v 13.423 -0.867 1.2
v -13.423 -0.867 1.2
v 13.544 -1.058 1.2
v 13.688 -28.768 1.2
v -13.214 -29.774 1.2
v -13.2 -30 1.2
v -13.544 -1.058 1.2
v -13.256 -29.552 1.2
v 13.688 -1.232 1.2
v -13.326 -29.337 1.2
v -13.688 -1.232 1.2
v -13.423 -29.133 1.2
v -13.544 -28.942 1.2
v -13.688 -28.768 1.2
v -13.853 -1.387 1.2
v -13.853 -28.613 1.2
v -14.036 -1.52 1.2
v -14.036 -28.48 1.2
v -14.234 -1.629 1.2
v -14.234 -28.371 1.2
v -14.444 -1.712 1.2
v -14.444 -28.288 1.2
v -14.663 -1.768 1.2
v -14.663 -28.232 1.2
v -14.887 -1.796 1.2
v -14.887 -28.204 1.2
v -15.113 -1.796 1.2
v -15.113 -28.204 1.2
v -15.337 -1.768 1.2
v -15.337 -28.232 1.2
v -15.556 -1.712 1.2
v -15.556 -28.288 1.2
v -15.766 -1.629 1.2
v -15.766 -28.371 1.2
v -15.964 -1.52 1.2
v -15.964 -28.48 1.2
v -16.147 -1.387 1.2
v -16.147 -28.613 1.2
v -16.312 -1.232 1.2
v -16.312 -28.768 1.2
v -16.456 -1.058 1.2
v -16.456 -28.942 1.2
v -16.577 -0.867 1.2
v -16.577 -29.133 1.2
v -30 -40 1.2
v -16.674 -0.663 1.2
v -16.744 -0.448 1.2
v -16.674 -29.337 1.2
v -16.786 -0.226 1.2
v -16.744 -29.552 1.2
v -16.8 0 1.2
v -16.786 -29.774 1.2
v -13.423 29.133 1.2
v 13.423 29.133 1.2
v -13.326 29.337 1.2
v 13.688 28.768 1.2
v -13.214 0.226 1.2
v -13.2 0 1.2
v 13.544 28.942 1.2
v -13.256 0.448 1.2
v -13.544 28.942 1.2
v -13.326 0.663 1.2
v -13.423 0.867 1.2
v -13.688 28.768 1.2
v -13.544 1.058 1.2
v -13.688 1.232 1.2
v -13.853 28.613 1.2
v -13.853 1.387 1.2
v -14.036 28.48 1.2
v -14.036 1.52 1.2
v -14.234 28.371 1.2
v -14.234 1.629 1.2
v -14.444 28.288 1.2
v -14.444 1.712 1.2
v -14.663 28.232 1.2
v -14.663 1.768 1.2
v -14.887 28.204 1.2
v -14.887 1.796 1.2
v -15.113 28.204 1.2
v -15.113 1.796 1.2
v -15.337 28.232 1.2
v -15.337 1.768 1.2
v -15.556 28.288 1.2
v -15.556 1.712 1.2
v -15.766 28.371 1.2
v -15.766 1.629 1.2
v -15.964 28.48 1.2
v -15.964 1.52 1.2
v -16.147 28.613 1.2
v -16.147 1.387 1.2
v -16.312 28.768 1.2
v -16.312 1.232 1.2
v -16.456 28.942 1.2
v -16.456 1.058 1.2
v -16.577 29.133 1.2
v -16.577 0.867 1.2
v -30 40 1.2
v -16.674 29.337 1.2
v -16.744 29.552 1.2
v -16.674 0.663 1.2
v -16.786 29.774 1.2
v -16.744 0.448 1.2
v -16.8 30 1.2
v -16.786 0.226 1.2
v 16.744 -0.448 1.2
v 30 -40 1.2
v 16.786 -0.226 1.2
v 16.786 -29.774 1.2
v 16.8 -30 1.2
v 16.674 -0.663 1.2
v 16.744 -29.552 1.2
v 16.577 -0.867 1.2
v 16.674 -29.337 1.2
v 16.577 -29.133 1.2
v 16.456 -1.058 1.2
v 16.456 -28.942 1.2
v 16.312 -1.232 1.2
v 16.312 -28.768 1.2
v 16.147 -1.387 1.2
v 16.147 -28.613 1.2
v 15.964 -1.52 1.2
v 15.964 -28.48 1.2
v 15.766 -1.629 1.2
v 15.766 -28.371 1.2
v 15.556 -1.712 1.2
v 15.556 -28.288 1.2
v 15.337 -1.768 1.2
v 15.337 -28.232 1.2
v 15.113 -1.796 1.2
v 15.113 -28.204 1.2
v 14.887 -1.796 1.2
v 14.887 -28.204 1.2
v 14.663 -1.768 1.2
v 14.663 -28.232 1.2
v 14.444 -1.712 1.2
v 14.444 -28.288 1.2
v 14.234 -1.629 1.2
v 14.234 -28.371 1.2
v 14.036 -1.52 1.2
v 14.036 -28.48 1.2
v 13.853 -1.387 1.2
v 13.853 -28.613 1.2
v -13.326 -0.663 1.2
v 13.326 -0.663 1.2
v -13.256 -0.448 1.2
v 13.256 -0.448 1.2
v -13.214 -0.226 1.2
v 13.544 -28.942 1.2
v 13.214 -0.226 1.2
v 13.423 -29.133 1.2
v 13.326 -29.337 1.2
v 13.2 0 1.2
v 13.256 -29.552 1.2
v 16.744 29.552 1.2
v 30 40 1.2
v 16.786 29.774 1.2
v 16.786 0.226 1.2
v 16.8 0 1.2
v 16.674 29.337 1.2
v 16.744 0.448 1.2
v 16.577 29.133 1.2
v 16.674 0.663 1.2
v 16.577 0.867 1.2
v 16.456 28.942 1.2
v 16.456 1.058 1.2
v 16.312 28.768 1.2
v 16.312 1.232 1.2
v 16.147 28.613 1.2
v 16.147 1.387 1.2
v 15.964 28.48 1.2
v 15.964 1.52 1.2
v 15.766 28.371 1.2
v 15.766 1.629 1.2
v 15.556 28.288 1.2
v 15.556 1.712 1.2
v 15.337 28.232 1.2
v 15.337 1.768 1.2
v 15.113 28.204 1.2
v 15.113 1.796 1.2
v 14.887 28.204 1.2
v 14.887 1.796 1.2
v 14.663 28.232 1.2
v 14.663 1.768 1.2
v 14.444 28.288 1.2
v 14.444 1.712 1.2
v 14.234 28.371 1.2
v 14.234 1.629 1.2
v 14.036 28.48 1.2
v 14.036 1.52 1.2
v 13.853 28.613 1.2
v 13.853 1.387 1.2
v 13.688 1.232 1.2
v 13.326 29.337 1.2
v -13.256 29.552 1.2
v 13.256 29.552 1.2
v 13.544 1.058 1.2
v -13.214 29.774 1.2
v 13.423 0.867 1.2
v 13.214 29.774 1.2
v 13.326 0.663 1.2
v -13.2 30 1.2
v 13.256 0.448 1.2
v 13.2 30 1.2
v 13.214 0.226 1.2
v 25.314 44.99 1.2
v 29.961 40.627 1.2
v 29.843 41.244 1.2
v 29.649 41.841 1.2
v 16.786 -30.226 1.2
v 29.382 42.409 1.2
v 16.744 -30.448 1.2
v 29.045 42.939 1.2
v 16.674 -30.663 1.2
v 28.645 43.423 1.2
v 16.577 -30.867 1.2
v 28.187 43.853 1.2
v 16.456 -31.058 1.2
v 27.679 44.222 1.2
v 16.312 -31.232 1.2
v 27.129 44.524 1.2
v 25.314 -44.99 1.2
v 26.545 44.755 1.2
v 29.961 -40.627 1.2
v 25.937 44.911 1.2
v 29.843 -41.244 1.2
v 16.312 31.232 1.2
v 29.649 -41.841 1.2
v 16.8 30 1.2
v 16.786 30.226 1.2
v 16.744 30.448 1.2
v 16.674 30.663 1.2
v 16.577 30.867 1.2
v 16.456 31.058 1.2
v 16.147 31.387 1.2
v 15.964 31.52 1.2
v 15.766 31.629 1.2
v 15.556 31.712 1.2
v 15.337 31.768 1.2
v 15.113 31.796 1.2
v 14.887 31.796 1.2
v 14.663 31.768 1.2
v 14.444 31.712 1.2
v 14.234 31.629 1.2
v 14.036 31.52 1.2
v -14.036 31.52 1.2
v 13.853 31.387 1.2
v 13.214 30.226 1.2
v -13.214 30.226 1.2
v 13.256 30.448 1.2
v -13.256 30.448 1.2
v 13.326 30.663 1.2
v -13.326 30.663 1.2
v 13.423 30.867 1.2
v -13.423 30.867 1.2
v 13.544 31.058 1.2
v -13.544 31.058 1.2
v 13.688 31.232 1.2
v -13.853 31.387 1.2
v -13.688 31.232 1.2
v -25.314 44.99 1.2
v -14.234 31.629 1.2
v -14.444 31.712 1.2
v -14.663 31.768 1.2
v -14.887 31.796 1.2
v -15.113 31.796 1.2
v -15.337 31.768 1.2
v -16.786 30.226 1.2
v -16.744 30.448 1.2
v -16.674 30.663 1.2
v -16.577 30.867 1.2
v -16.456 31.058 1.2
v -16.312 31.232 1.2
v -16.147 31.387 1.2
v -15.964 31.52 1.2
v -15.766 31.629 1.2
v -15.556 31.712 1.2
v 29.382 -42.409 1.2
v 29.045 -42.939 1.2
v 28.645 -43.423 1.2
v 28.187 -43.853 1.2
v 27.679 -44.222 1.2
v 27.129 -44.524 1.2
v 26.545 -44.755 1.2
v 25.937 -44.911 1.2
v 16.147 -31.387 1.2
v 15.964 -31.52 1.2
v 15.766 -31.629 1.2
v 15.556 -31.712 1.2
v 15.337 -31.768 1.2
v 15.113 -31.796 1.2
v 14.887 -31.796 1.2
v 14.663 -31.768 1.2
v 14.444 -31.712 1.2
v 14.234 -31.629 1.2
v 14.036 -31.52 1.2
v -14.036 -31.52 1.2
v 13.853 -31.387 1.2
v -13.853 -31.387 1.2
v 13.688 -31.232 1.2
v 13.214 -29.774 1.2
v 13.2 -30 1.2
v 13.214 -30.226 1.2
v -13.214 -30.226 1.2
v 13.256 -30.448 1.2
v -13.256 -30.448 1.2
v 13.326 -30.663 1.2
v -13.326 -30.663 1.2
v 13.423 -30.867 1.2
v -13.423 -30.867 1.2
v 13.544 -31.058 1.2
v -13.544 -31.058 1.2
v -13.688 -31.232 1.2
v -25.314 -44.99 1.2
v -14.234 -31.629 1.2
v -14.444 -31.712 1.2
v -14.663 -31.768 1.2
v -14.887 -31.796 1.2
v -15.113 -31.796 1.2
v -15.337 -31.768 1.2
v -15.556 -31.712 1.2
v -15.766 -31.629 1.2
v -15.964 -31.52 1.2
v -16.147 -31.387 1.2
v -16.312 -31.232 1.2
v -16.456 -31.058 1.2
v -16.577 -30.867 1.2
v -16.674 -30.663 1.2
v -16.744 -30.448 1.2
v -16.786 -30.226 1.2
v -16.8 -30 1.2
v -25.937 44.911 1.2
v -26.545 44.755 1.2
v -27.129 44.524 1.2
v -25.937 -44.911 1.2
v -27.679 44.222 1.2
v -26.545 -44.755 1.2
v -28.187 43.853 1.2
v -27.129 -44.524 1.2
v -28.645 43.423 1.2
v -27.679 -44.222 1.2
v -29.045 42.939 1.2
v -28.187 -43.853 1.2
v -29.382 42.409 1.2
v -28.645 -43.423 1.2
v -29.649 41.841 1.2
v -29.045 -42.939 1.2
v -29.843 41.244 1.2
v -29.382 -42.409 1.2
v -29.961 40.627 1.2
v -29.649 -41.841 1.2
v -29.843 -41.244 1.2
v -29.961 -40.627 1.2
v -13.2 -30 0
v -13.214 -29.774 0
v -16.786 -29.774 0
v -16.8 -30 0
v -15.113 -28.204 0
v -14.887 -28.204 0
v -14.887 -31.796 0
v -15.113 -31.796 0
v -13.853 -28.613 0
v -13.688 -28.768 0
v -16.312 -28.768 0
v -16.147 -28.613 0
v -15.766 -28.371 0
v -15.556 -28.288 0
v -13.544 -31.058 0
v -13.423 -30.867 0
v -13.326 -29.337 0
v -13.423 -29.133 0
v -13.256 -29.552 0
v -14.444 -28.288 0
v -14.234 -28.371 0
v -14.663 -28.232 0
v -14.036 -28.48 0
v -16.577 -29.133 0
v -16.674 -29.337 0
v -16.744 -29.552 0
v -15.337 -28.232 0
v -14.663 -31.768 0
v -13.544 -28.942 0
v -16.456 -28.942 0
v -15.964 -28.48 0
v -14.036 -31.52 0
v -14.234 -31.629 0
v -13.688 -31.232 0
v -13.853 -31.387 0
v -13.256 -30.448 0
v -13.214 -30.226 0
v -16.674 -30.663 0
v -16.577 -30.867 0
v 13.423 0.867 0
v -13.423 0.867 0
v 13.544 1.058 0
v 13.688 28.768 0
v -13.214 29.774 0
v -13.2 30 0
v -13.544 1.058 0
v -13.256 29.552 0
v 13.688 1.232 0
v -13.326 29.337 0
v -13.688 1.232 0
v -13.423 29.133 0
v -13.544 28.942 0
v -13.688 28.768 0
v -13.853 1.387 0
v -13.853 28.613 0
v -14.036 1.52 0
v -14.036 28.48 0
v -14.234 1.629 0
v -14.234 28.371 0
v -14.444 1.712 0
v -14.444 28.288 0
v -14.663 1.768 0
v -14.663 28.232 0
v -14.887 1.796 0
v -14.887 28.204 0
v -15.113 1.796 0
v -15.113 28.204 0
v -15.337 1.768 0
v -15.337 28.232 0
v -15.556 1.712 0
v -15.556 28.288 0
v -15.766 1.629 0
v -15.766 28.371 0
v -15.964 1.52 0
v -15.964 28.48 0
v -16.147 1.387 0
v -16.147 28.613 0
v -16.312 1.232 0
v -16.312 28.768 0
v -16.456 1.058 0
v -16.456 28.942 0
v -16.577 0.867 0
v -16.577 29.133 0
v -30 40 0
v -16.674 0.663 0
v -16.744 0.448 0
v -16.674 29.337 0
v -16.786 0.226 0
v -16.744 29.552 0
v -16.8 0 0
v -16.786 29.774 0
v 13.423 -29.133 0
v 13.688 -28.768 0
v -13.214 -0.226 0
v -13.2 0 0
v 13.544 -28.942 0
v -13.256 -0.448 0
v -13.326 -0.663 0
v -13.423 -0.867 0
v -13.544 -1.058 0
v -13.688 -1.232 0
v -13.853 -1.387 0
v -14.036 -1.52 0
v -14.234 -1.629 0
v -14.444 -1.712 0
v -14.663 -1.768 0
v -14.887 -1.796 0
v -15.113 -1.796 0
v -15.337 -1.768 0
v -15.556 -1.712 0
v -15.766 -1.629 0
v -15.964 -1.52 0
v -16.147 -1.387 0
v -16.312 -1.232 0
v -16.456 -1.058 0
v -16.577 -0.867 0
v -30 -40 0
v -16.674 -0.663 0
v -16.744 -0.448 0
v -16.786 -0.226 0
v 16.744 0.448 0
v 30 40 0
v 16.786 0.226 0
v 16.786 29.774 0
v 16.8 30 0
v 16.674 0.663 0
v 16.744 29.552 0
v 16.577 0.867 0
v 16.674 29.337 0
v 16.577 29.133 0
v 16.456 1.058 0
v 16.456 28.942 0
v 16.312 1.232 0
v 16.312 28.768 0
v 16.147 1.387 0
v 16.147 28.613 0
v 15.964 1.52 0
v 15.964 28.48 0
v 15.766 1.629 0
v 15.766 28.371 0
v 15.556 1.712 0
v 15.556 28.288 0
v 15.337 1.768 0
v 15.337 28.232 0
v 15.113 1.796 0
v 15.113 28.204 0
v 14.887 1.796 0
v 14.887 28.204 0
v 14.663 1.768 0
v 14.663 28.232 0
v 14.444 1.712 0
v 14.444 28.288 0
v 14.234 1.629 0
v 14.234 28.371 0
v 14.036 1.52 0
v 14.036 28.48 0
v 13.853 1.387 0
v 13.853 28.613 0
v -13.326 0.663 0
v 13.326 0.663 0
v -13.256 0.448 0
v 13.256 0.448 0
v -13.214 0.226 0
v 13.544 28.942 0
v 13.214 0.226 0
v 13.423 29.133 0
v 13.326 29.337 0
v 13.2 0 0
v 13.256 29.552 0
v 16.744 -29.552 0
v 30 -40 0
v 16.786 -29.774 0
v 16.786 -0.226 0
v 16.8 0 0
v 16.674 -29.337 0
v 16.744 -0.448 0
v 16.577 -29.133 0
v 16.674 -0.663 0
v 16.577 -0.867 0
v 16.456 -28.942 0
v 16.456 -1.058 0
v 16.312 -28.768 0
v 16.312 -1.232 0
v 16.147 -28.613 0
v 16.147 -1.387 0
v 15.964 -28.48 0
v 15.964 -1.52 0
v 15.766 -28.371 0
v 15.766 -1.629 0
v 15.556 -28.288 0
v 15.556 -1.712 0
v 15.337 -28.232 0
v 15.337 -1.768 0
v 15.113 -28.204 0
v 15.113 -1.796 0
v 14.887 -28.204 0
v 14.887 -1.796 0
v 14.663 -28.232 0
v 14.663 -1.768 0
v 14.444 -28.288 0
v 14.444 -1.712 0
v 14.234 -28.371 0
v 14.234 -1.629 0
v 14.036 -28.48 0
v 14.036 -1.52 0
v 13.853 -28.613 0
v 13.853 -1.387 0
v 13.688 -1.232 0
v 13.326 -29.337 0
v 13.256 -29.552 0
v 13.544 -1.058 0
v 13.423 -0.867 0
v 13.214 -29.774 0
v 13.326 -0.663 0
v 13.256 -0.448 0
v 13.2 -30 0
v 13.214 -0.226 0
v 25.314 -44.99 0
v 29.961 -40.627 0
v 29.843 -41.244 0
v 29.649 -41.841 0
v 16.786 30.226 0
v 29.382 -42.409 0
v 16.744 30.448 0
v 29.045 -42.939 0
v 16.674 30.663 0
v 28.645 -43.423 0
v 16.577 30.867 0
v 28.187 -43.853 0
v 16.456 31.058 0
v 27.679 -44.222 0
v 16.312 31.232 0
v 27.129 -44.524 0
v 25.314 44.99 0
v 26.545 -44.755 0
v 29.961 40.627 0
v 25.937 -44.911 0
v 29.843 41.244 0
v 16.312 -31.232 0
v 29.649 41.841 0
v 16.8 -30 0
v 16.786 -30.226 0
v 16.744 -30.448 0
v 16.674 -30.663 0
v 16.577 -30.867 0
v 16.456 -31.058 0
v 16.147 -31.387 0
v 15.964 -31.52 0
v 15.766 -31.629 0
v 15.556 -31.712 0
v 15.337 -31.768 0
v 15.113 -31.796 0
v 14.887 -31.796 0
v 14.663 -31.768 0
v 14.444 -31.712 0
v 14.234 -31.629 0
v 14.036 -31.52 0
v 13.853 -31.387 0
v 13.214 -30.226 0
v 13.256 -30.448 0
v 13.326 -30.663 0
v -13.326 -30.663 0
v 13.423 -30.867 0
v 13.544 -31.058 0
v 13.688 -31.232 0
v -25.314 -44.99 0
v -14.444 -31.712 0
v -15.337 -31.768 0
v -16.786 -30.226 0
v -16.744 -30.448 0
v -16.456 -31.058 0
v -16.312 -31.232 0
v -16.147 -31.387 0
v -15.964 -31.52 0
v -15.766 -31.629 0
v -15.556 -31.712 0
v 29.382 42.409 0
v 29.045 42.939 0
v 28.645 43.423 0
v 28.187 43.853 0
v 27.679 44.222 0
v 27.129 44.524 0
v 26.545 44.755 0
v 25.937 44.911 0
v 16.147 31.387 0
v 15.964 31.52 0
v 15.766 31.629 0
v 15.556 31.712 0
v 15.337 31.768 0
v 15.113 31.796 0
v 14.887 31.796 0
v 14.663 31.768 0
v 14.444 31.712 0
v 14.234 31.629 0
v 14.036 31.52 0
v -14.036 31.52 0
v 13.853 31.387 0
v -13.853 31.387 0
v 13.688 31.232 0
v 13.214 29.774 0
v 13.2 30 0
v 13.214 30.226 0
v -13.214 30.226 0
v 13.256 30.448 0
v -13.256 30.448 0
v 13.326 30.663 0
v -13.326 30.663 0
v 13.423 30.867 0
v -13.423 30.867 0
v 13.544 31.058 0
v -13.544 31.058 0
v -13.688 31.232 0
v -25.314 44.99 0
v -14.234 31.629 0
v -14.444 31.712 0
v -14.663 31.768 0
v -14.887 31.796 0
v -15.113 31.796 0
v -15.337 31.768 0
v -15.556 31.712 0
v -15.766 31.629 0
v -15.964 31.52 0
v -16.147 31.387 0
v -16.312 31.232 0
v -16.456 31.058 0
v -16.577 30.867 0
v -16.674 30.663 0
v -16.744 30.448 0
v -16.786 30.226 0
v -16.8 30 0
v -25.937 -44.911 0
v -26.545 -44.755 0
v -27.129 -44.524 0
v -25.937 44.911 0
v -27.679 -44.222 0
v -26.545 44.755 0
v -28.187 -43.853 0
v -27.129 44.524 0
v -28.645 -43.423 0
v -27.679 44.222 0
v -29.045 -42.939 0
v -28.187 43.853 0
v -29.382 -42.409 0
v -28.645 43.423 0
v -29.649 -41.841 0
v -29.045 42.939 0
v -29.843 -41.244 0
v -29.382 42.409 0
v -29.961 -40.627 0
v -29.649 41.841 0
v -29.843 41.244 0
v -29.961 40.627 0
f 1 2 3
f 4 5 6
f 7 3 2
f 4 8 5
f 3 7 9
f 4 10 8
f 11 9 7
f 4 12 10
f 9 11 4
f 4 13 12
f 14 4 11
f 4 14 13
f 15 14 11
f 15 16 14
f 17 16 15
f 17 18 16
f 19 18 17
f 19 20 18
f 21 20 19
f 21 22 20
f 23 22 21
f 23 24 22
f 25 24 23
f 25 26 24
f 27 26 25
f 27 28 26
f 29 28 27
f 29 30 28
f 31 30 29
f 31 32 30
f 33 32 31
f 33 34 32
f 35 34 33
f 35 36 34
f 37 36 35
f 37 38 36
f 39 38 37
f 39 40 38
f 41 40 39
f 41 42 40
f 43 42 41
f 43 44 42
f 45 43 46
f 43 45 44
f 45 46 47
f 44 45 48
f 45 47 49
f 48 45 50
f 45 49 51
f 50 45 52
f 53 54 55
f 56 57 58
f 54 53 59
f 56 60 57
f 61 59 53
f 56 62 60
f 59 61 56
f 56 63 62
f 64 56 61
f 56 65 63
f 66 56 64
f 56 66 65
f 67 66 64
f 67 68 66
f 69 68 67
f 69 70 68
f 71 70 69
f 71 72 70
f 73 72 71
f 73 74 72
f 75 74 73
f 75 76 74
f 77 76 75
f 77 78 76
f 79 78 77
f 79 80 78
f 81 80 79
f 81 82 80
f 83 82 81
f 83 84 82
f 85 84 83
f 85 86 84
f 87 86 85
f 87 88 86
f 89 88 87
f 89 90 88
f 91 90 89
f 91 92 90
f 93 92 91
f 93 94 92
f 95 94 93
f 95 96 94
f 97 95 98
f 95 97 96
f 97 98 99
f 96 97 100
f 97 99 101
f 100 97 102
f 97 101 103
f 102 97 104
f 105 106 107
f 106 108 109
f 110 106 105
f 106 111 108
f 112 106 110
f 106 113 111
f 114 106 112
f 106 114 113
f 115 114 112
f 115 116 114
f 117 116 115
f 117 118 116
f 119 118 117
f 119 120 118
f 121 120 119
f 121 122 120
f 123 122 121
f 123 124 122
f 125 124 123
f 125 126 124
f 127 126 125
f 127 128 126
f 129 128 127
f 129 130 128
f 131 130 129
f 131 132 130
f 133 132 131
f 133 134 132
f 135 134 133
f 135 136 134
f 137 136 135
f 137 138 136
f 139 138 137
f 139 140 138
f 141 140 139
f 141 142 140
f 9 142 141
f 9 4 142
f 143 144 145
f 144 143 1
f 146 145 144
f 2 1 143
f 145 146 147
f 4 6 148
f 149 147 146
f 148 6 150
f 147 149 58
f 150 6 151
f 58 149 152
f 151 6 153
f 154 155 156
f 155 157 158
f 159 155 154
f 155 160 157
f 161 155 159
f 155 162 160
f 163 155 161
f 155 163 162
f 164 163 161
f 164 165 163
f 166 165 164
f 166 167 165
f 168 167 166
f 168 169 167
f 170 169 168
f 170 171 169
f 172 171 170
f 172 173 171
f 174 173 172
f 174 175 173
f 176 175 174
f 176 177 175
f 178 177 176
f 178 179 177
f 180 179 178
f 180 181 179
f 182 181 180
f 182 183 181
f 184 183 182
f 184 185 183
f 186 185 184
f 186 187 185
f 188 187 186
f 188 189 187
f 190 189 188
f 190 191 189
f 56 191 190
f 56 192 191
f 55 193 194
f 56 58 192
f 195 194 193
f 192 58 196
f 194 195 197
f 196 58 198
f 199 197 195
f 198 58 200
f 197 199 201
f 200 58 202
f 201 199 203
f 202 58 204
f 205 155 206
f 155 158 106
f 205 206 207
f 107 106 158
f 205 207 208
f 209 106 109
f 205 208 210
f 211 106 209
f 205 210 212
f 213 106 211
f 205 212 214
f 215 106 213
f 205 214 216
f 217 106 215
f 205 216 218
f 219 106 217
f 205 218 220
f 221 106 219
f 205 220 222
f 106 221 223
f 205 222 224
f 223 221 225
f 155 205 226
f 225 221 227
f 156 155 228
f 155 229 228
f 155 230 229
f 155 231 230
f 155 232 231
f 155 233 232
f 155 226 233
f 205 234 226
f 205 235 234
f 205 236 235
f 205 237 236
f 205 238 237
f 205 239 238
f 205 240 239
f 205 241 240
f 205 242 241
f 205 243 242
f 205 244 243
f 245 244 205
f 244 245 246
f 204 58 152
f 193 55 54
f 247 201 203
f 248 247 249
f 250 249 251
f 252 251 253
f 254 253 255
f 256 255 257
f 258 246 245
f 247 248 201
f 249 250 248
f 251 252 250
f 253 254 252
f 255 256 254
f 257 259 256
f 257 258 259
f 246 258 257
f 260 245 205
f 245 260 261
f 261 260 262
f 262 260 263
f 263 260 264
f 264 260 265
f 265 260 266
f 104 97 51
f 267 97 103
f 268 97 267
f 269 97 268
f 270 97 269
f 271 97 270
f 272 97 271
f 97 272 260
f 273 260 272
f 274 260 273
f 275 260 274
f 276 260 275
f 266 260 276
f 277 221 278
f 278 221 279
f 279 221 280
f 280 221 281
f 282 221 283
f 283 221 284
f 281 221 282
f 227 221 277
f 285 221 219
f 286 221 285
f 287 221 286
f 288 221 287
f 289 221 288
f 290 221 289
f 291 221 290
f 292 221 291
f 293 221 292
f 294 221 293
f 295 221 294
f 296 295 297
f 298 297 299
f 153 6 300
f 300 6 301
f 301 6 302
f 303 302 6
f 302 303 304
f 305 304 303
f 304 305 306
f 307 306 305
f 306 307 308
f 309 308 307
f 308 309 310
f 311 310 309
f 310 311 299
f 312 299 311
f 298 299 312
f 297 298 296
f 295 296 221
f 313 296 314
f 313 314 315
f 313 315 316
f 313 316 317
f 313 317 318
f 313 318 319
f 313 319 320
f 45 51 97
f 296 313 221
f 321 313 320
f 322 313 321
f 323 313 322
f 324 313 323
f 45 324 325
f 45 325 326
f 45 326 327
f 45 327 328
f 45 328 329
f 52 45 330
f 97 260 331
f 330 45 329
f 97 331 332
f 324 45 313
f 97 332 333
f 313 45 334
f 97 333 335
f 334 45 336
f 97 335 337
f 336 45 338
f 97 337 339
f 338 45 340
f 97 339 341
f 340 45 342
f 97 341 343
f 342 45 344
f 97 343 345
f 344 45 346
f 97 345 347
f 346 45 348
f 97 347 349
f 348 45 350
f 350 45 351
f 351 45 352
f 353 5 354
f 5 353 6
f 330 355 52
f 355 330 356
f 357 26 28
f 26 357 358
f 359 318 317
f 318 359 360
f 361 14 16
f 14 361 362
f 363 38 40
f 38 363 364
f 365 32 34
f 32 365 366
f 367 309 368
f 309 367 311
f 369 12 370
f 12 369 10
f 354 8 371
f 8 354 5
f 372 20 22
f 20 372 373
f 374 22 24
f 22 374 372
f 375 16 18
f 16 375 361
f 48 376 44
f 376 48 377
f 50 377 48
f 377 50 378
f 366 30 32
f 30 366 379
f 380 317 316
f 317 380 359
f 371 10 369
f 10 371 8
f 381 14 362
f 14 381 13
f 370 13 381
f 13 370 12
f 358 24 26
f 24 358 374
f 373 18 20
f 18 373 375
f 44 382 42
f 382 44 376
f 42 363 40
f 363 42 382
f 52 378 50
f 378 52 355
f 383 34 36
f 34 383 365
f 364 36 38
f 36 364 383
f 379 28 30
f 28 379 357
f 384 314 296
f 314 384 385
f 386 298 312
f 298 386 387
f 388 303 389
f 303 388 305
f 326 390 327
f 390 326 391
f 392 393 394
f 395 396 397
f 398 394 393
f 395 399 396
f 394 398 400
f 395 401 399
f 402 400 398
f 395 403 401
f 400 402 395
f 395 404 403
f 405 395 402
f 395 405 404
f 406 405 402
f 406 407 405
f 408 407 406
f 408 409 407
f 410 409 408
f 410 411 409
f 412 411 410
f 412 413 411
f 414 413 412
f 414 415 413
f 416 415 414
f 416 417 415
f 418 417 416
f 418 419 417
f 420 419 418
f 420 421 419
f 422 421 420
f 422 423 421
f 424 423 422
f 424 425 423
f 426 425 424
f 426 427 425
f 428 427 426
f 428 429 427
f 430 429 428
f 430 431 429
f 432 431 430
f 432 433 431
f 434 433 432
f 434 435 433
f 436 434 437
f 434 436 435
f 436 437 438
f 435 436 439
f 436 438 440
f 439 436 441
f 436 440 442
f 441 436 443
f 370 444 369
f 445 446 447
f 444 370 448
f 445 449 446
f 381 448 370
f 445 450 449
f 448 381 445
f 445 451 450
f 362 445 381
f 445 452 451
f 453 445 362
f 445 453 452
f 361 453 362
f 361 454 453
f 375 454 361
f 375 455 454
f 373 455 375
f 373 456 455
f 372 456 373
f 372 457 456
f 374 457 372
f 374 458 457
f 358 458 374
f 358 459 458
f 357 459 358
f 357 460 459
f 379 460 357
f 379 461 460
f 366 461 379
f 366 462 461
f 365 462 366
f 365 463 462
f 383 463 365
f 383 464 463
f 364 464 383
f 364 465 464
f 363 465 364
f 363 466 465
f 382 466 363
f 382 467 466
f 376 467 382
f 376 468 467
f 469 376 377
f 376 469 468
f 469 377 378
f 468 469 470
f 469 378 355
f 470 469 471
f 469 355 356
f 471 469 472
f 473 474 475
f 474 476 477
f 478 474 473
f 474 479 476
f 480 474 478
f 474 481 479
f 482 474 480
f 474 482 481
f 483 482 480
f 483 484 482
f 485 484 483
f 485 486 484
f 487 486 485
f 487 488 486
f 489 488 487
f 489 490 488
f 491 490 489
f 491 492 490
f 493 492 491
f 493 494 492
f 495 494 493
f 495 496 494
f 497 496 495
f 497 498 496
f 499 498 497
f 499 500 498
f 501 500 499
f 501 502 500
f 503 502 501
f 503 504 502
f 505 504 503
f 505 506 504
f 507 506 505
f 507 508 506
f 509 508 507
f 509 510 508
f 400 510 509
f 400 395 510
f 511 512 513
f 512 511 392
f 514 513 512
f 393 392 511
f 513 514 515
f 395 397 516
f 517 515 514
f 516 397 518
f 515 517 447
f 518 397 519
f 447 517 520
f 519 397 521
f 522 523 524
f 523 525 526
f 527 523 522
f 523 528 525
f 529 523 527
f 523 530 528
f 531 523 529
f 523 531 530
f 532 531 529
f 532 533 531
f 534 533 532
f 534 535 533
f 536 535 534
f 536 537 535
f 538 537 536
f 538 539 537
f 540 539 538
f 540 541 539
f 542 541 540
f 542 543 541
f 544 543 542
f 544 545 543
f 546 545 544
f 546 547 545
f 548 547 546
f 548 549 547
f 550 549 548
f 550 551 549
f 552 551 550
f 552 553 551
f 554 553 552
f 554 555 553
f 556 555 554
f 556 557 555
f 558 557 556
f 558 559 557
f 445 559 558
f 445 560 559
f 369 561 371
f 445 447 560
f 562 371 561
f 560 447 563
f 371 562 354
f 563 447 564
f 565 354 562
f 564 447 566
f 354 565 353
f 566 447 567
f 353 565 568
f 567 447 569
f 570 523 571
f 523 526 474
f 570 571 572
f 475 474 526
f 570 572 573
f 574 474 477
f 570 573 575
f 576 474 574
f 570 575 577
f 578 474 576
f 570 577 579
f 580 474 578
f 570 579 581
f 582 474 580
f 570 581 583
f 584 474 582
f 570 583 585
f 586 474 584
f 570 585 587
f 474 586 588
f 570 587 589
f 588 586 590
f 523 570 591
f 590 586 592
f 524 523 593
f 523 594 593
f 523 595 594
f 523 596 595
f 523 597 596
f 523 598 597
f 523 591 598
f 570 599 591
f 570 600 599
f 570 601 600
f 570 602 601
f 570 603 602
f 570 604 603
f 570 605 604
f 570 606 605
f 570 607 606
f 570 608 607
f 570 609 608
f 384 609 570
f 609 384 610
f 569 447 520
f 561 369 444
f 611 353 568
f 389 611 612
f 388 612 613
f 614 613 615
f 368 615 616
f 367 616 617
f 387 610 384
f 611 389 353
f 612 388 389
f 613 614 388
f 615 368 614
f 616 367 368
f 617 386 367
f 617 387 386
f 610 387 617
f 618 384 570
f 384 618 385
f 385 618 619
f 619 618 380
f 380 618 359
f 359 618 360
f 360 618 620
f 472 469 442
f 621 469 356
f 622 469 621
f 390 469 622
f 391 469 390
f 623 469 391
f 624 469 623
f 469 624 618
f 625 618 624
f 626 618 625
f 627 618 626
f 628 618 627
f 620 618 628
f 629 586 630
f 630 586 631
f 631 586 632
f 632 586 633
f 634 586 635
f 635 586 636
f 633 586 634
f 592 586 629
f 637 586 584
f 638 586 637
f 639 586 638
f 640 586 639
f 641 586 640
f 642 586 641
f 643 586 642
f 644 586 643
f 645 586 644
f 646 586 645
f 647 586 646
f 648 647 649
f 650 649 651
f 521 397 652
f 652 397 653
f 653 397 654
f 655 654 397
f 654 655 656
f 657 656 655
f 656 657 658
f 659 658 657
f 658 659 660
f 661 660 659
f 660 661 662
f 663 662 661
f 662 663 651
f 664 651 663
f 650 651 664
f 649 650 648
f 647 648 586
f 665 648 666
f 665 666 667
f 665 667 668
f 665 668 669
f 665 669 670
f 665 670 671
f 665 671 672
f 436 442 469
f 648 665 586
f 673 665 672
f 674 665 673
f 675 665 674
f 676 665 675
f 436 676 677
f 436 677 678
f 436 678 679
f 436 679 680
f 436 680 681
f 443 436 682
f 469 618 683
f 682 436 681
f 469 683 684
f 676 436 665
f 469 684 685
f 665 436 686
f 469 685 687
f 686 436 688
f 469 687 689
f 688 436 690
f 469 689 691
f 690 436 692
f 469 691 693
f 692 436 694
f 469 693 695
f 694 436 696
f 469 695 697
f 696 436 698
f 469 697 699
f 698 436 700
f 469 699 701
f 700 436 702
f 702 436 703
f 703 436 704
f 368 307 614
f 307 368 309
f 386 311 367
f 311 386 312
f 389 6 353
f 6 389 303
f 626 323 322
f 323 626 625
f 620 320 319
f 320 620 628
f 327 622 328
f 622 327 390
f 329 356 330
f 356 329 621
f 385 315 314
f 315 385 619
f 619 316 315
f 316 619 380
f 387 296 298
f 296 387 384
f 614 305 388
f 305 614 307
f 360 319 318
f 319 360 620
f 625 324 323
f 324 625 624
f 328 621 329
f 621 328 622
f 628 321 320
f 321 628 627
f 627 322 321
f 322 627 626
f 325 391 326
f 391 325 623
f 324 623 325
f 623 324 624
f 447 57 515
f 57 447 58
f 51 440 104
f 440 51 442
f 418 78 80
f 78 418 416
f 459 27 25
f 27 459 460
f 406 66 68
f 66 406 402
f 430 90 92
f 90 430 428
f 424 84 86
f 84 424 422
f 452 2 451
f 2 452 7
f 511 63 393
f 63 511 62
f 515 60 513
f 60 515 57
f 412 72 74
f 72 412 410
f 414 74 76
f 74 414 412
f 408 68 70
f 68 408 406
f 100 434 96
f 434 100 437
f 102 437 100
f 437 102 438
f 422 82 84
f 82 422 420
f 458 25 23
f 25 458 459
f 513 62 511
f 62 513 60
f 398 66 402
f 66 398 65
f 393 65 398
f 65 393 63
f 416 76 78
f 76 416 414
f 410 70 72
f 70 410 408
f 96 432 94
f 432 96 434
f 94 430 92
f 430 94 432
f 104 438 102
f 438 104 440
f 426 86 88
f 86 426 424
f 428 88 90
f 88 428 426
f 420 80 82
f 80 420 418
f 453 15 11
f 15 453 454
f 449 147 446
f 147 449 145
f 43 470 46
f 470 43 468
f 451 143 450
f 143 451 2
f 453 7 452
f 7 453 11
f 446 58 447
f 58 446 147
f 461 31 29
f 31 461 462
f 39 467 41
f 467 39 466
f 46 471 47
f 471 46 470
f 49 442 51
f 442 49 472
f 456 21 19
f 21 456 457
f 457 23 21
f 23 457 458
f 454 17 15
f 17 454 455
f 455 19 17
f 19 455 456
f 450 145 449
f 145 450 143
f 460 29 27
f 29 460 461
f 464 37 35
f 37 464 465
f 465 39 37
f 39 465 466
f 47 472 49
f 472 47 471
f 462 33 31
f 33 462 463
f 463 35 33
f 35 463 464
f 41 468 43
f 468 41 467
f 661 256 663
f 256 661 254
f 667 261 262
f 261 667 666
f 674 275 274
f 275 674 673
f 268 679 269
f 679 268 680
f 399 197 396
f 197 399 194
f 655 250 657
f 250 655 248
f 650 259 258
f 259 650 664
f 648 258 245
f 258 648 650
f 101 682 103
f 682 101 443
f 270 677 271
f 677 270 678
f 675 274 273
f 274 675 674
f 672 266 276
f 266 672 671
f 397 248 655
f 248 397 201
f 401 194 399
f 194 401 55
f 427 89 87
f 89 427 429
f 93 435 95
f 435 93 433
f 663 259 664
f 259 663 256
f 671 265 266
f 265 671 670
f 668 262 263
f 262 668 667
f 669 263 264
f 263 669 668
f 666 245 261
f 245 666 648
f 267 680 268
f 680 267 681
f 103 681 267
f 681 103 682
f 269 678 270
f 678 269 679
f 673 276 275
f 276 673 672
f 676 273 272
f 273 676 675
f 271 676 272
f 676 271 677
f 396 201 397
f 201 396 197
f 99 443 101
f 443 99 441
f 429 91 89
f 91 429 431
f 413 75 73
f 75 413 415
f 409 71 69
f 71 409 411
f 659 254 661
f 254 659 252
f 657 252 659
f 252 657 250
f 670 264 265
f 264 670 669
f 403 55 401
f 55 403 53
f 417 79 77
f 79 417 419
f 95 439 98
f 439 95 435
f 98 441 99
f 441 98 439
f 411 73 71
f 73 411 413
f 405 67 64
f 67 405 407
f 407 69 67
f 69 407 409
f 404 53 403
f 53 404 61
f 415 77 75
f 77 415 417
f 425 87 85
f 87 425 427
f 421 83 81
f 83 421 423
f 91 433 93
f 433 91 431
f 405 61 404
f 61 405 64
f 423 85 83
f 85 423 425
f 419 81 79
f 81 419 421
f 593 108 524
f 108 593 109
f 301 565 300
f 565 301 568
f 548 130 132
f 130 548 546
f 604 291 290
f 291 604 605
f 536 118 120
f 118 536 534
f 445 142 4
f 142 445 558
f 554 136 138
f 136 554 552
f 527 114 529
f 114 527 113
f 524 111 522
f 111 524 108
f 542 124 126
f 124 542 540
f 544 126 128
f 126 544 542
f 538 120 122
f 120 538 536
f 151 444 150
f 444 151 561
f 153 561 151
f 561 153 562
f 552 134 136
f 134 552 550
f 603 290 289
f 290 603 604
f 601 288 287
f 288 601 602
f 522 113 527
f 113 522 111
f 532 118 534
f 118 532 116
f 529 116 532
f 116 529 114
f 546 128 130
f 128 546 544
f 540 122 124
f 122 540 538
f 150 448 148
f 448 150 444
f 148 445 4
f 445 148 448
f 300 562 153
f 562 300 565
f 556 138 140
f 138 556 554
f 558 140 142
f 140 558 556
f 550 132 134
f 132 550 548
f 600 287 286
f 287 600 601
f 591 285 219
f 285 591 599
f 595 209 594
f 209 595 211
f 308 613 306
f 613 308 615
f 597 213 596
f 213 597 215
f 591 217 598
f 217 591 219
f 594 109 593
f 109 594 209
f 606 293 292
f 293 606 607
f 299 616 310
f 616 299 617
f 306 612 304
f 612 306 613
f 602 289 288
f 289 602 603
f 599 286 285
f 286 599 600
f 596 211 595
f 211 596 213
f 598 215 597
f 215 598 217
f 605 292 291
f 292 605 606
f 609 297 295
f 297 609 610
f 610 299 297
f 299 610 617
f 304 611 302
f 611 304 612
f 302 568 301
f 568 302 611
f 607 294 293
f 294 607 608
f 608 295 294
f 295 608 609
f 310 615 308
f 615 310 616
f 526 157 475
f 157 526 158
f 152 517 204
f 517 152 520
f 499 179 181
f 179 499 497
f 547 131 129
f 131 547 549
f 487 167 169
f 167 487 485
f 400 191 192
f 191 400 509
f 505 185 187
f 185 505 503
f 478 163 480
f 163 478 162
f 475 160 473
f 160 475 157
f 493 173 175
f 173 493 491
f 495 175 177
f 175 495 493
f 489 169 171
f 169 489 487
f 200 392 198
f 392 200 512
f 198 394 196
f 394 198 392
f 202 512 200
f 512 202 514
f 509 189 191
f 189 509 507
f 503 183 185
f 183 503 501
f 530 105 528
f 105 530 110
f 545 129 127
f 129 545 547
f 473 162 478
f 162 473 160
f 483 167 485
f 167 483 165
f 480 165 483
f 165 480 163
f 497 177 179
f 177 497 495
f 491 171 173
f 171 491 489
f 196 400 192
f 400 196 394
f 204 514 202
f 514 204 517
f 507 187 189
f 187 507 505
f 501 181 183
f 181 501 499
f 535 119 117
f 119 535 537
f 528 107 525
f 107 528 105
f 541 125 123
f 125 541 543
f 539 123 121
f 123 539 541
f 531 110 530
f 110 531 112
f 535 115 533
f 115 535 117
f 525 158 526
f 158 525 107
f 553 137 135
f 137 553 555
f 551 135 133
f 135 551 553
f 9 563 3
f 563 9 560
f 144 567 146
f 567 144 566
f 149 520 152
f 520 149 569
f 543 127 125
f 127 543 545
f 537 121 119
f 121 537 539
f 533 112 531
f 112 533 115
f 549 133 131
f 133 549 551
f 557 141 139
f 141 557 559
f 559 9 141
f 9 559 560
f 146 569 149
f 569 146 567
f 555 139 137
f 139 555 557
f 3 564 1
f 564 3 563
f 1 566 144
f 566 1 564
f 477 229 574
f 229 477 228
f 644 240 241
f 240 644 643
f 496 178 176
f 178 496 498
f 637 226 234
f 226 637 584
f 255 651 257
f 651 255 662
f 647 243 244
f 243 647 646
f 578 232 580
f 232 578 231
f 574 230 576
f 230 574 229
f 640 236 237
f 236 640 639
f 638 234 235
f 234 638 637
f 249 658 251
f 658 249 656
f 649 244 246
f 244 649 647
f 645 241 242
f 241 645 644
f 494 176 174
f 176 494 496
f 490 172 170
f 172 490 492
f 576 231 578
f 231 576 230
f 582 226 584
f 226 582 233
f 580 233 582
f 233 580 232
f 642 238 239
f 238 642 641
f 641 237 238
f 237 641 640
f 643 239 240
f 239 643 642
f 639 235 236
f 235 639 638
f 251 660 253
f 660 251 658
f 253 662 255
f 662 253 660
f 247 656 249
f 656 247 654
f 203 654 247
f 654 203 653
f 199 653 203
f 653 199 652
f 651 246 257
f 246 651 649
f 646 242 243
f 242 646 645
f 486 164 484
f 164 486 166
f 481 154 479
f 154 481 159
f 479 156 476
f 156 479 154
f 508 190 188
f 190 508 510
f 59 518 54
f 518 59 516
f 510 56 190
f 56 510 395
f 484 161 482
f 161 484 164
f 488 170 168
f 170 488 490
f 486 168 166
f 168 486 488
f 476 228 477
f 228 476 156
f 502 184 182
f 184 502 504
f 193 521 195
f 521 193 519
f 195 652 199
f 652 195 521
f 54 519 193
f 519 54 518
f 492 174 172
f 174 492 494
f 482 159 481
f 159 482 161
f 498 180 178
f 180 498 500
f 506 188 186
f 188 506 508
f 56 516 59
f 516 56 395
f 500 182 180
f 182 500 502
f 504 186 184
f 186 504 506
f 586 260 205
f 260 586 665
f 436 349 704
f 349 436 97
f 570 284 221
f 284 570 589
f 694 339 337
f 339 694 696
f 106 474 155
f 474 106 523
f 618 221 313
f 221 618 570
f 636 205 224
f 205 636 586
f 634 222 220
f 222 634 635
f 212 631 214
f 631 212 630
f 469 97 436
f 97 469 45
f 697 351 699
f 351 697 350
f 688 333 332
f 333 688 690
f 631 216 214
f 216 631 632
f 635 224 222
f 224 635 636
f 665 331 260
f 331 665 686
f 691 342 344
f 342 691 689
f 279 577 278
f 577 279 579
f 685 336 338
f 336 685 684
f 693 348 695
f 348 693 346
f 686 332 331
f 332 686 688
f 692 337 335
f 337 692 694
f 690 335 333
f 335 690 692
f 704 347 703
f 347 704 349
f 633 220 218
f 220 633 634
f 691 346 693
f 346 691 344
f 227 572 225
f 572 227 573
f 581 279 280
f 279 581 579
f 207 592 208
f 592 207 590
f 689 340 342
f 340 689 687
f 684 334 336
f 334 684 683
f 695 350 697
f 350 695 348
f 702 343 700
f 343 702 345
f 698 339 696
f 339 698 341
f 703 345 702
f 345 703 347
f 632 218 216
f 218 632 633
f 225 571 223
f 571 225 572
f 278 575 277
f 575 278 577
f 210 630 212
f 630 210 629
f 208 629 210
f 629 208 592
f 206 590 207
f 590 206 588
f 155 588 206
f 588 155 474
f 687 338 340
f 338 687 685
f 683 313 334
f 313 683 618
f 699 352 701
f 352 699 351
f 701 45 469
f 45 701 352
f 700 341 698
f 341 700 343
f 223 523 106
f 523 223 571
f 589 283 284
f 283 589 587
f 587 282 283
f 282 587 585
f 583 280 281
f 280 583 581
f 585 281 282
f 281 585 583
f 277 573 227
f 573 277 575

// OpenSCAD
$fn = 50;


difference() {
	union() {
		hull() {
			translate(v = [-25.0000000000, 40.0000000000, 0]) {
				cylinder(h = 24, r = 5);
			}
			translate(v = [25.0000000000, 40.0000000000, 0]) {
				cylinder(h = 24, r = 5);
			}
			translate(v = [-25.0000000000, -40.0000000000, 0]) {
				cylinder(h = 24, r = 5);
			}
			translate(v = [25.0000000000, -40.0000000000, 0]) {
				cylinder(h = 24, r = 5);
			}
		}
	}
	union() {
		translate(v = [0, 0, 1.2000000000]) {
			hull() {
				translate(v = [-25.0000000000, 40.0000000000, 0]) {
					cylinder(h = 22.8000000000, r = 3.8000000000);
				}
				translate(v = [25.0000000000, 40.0000000000, 0]) {
					cylinder(h = 22.8000000000, r = 3.8000000000);
				}
				translate(v = [-25.0000000000, -40.0000000000, 0]) {
					cylinder(h = 22.8000000000, r = 3.8000000000);
				}
				translate(v = [25.0000000000, -40.0000000000, 0]) {
					cylinder(h = 22.8000000000, r = 3.8000000000);
				}
			}
		}
		#translate(v = [-15.0000000000, -30.0000000000, 0]) {
			cylinder(h = 1.2000000000, r = 1.8000000000);
		}
		#translate(v = [-15.0000000000, 0.0000000000, 0]) {
			cylinder(h = 1.2000000000, r = 1.8000000000);
		}
		#translate(v = [-15.0000000000, 30.0000000000, 0]) {
			cylinder(h = 1.2000000000, r = 1.8000000000);
		}
		#translate(v = [15.0000000000, -30.0000000000, 0]) {
			cylinder(h = 1.2000000000, r = 1.8000000000);
		}
		#translate(v = [15.0000000000, 0.0000000000, 0]) {
			cylinder(h = 1.2000000000, r = 1.8000000000);
		}
		#translate(v = [15.0000000000, 30.0000000000, 0]) {
			cylinder(h = 1.2000000000, r = 1.8000000000);
		}
		translate(v = [-250.0000000000, -250.0000000000, 1.2000000000]) {
			cube(size = [500, 500, 500]);
		}
		translate(v = [-250.0000000000, -250.0000000000, 1.2000000000]) {
			cube(size = [500, 500, 500]);
		}
		translate(v = [-250.0000000000, -250.0000000000, 1.2000000000]) {
			cube(size = [500, 500, 500]);
		}
	}
}
